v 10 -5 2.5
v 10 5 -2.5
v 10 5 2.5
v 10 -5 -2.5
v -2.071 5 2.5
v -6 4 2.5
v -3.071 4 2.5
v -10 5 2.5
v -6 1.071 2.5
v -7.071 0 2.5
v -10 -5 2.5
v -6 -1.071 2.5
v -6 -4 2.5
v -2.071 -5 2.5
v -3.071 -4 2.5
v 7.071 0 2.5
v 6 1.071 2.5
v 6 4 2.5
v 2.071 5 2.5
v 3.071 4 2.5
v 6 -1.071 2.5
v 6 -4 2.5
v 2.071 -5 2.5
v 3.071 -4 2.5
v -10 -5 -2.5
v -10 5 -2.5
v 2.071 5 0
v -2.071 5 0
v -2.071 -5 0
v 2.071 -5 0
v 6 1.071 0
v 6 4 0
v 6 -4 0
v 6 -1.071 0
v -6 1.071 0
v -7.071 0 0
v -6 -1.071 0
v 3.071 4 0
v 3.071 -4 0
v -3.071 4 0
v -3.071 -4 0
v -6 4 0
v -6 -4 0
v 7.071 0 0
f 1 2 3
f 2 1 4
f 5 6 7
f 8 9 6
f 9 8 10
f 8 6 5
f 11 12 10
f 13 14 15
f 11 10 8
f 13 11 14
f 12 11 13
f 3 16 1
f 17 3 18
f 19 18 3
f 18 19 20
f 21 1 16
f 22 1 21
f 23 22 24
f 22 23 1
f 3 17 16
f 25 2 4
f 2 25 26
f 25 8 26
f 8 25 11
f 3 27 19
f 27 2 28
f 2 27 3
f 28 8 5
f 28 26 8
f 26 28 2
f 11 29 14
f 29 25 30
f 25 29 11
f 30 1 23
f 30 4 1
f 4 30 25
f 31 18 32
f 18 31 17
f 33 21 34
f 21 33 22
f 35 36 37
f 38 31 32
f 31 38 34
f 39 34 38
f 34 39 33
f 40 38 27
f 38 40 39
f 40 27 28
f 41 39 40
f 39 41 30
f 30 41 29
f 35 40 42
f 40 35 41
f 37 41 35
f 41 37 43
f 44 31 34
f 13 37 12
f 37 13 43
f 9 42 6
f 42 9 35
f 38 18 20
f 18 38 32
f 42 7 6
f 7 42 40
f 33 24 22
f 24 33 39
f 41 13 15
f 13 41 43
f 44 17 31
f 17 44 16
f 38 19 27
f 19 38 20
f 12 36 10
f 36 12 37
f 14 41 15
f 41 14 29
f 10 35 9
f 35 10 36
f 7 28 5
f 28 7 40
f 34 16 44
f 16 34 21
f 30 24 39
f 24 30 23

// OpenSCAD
// Angular Connector Component
module angular_connector() {
    difference() {
        // Base block with adjusted dimensions for a less bulky profile
        cube([20, 10, 5], center = true);
        
        // Refined stepped profile
        translate([0, 0, 2.5])
            cube([12, 8, 5], center = true);
        
        // Additional tapering for angular design
        translate([0, 0, 2.5])
            rotate([0, 0, 45])
            cube([10, 10, 5], center = true);
    }
}

// Render the angular connector
angular_connector();
